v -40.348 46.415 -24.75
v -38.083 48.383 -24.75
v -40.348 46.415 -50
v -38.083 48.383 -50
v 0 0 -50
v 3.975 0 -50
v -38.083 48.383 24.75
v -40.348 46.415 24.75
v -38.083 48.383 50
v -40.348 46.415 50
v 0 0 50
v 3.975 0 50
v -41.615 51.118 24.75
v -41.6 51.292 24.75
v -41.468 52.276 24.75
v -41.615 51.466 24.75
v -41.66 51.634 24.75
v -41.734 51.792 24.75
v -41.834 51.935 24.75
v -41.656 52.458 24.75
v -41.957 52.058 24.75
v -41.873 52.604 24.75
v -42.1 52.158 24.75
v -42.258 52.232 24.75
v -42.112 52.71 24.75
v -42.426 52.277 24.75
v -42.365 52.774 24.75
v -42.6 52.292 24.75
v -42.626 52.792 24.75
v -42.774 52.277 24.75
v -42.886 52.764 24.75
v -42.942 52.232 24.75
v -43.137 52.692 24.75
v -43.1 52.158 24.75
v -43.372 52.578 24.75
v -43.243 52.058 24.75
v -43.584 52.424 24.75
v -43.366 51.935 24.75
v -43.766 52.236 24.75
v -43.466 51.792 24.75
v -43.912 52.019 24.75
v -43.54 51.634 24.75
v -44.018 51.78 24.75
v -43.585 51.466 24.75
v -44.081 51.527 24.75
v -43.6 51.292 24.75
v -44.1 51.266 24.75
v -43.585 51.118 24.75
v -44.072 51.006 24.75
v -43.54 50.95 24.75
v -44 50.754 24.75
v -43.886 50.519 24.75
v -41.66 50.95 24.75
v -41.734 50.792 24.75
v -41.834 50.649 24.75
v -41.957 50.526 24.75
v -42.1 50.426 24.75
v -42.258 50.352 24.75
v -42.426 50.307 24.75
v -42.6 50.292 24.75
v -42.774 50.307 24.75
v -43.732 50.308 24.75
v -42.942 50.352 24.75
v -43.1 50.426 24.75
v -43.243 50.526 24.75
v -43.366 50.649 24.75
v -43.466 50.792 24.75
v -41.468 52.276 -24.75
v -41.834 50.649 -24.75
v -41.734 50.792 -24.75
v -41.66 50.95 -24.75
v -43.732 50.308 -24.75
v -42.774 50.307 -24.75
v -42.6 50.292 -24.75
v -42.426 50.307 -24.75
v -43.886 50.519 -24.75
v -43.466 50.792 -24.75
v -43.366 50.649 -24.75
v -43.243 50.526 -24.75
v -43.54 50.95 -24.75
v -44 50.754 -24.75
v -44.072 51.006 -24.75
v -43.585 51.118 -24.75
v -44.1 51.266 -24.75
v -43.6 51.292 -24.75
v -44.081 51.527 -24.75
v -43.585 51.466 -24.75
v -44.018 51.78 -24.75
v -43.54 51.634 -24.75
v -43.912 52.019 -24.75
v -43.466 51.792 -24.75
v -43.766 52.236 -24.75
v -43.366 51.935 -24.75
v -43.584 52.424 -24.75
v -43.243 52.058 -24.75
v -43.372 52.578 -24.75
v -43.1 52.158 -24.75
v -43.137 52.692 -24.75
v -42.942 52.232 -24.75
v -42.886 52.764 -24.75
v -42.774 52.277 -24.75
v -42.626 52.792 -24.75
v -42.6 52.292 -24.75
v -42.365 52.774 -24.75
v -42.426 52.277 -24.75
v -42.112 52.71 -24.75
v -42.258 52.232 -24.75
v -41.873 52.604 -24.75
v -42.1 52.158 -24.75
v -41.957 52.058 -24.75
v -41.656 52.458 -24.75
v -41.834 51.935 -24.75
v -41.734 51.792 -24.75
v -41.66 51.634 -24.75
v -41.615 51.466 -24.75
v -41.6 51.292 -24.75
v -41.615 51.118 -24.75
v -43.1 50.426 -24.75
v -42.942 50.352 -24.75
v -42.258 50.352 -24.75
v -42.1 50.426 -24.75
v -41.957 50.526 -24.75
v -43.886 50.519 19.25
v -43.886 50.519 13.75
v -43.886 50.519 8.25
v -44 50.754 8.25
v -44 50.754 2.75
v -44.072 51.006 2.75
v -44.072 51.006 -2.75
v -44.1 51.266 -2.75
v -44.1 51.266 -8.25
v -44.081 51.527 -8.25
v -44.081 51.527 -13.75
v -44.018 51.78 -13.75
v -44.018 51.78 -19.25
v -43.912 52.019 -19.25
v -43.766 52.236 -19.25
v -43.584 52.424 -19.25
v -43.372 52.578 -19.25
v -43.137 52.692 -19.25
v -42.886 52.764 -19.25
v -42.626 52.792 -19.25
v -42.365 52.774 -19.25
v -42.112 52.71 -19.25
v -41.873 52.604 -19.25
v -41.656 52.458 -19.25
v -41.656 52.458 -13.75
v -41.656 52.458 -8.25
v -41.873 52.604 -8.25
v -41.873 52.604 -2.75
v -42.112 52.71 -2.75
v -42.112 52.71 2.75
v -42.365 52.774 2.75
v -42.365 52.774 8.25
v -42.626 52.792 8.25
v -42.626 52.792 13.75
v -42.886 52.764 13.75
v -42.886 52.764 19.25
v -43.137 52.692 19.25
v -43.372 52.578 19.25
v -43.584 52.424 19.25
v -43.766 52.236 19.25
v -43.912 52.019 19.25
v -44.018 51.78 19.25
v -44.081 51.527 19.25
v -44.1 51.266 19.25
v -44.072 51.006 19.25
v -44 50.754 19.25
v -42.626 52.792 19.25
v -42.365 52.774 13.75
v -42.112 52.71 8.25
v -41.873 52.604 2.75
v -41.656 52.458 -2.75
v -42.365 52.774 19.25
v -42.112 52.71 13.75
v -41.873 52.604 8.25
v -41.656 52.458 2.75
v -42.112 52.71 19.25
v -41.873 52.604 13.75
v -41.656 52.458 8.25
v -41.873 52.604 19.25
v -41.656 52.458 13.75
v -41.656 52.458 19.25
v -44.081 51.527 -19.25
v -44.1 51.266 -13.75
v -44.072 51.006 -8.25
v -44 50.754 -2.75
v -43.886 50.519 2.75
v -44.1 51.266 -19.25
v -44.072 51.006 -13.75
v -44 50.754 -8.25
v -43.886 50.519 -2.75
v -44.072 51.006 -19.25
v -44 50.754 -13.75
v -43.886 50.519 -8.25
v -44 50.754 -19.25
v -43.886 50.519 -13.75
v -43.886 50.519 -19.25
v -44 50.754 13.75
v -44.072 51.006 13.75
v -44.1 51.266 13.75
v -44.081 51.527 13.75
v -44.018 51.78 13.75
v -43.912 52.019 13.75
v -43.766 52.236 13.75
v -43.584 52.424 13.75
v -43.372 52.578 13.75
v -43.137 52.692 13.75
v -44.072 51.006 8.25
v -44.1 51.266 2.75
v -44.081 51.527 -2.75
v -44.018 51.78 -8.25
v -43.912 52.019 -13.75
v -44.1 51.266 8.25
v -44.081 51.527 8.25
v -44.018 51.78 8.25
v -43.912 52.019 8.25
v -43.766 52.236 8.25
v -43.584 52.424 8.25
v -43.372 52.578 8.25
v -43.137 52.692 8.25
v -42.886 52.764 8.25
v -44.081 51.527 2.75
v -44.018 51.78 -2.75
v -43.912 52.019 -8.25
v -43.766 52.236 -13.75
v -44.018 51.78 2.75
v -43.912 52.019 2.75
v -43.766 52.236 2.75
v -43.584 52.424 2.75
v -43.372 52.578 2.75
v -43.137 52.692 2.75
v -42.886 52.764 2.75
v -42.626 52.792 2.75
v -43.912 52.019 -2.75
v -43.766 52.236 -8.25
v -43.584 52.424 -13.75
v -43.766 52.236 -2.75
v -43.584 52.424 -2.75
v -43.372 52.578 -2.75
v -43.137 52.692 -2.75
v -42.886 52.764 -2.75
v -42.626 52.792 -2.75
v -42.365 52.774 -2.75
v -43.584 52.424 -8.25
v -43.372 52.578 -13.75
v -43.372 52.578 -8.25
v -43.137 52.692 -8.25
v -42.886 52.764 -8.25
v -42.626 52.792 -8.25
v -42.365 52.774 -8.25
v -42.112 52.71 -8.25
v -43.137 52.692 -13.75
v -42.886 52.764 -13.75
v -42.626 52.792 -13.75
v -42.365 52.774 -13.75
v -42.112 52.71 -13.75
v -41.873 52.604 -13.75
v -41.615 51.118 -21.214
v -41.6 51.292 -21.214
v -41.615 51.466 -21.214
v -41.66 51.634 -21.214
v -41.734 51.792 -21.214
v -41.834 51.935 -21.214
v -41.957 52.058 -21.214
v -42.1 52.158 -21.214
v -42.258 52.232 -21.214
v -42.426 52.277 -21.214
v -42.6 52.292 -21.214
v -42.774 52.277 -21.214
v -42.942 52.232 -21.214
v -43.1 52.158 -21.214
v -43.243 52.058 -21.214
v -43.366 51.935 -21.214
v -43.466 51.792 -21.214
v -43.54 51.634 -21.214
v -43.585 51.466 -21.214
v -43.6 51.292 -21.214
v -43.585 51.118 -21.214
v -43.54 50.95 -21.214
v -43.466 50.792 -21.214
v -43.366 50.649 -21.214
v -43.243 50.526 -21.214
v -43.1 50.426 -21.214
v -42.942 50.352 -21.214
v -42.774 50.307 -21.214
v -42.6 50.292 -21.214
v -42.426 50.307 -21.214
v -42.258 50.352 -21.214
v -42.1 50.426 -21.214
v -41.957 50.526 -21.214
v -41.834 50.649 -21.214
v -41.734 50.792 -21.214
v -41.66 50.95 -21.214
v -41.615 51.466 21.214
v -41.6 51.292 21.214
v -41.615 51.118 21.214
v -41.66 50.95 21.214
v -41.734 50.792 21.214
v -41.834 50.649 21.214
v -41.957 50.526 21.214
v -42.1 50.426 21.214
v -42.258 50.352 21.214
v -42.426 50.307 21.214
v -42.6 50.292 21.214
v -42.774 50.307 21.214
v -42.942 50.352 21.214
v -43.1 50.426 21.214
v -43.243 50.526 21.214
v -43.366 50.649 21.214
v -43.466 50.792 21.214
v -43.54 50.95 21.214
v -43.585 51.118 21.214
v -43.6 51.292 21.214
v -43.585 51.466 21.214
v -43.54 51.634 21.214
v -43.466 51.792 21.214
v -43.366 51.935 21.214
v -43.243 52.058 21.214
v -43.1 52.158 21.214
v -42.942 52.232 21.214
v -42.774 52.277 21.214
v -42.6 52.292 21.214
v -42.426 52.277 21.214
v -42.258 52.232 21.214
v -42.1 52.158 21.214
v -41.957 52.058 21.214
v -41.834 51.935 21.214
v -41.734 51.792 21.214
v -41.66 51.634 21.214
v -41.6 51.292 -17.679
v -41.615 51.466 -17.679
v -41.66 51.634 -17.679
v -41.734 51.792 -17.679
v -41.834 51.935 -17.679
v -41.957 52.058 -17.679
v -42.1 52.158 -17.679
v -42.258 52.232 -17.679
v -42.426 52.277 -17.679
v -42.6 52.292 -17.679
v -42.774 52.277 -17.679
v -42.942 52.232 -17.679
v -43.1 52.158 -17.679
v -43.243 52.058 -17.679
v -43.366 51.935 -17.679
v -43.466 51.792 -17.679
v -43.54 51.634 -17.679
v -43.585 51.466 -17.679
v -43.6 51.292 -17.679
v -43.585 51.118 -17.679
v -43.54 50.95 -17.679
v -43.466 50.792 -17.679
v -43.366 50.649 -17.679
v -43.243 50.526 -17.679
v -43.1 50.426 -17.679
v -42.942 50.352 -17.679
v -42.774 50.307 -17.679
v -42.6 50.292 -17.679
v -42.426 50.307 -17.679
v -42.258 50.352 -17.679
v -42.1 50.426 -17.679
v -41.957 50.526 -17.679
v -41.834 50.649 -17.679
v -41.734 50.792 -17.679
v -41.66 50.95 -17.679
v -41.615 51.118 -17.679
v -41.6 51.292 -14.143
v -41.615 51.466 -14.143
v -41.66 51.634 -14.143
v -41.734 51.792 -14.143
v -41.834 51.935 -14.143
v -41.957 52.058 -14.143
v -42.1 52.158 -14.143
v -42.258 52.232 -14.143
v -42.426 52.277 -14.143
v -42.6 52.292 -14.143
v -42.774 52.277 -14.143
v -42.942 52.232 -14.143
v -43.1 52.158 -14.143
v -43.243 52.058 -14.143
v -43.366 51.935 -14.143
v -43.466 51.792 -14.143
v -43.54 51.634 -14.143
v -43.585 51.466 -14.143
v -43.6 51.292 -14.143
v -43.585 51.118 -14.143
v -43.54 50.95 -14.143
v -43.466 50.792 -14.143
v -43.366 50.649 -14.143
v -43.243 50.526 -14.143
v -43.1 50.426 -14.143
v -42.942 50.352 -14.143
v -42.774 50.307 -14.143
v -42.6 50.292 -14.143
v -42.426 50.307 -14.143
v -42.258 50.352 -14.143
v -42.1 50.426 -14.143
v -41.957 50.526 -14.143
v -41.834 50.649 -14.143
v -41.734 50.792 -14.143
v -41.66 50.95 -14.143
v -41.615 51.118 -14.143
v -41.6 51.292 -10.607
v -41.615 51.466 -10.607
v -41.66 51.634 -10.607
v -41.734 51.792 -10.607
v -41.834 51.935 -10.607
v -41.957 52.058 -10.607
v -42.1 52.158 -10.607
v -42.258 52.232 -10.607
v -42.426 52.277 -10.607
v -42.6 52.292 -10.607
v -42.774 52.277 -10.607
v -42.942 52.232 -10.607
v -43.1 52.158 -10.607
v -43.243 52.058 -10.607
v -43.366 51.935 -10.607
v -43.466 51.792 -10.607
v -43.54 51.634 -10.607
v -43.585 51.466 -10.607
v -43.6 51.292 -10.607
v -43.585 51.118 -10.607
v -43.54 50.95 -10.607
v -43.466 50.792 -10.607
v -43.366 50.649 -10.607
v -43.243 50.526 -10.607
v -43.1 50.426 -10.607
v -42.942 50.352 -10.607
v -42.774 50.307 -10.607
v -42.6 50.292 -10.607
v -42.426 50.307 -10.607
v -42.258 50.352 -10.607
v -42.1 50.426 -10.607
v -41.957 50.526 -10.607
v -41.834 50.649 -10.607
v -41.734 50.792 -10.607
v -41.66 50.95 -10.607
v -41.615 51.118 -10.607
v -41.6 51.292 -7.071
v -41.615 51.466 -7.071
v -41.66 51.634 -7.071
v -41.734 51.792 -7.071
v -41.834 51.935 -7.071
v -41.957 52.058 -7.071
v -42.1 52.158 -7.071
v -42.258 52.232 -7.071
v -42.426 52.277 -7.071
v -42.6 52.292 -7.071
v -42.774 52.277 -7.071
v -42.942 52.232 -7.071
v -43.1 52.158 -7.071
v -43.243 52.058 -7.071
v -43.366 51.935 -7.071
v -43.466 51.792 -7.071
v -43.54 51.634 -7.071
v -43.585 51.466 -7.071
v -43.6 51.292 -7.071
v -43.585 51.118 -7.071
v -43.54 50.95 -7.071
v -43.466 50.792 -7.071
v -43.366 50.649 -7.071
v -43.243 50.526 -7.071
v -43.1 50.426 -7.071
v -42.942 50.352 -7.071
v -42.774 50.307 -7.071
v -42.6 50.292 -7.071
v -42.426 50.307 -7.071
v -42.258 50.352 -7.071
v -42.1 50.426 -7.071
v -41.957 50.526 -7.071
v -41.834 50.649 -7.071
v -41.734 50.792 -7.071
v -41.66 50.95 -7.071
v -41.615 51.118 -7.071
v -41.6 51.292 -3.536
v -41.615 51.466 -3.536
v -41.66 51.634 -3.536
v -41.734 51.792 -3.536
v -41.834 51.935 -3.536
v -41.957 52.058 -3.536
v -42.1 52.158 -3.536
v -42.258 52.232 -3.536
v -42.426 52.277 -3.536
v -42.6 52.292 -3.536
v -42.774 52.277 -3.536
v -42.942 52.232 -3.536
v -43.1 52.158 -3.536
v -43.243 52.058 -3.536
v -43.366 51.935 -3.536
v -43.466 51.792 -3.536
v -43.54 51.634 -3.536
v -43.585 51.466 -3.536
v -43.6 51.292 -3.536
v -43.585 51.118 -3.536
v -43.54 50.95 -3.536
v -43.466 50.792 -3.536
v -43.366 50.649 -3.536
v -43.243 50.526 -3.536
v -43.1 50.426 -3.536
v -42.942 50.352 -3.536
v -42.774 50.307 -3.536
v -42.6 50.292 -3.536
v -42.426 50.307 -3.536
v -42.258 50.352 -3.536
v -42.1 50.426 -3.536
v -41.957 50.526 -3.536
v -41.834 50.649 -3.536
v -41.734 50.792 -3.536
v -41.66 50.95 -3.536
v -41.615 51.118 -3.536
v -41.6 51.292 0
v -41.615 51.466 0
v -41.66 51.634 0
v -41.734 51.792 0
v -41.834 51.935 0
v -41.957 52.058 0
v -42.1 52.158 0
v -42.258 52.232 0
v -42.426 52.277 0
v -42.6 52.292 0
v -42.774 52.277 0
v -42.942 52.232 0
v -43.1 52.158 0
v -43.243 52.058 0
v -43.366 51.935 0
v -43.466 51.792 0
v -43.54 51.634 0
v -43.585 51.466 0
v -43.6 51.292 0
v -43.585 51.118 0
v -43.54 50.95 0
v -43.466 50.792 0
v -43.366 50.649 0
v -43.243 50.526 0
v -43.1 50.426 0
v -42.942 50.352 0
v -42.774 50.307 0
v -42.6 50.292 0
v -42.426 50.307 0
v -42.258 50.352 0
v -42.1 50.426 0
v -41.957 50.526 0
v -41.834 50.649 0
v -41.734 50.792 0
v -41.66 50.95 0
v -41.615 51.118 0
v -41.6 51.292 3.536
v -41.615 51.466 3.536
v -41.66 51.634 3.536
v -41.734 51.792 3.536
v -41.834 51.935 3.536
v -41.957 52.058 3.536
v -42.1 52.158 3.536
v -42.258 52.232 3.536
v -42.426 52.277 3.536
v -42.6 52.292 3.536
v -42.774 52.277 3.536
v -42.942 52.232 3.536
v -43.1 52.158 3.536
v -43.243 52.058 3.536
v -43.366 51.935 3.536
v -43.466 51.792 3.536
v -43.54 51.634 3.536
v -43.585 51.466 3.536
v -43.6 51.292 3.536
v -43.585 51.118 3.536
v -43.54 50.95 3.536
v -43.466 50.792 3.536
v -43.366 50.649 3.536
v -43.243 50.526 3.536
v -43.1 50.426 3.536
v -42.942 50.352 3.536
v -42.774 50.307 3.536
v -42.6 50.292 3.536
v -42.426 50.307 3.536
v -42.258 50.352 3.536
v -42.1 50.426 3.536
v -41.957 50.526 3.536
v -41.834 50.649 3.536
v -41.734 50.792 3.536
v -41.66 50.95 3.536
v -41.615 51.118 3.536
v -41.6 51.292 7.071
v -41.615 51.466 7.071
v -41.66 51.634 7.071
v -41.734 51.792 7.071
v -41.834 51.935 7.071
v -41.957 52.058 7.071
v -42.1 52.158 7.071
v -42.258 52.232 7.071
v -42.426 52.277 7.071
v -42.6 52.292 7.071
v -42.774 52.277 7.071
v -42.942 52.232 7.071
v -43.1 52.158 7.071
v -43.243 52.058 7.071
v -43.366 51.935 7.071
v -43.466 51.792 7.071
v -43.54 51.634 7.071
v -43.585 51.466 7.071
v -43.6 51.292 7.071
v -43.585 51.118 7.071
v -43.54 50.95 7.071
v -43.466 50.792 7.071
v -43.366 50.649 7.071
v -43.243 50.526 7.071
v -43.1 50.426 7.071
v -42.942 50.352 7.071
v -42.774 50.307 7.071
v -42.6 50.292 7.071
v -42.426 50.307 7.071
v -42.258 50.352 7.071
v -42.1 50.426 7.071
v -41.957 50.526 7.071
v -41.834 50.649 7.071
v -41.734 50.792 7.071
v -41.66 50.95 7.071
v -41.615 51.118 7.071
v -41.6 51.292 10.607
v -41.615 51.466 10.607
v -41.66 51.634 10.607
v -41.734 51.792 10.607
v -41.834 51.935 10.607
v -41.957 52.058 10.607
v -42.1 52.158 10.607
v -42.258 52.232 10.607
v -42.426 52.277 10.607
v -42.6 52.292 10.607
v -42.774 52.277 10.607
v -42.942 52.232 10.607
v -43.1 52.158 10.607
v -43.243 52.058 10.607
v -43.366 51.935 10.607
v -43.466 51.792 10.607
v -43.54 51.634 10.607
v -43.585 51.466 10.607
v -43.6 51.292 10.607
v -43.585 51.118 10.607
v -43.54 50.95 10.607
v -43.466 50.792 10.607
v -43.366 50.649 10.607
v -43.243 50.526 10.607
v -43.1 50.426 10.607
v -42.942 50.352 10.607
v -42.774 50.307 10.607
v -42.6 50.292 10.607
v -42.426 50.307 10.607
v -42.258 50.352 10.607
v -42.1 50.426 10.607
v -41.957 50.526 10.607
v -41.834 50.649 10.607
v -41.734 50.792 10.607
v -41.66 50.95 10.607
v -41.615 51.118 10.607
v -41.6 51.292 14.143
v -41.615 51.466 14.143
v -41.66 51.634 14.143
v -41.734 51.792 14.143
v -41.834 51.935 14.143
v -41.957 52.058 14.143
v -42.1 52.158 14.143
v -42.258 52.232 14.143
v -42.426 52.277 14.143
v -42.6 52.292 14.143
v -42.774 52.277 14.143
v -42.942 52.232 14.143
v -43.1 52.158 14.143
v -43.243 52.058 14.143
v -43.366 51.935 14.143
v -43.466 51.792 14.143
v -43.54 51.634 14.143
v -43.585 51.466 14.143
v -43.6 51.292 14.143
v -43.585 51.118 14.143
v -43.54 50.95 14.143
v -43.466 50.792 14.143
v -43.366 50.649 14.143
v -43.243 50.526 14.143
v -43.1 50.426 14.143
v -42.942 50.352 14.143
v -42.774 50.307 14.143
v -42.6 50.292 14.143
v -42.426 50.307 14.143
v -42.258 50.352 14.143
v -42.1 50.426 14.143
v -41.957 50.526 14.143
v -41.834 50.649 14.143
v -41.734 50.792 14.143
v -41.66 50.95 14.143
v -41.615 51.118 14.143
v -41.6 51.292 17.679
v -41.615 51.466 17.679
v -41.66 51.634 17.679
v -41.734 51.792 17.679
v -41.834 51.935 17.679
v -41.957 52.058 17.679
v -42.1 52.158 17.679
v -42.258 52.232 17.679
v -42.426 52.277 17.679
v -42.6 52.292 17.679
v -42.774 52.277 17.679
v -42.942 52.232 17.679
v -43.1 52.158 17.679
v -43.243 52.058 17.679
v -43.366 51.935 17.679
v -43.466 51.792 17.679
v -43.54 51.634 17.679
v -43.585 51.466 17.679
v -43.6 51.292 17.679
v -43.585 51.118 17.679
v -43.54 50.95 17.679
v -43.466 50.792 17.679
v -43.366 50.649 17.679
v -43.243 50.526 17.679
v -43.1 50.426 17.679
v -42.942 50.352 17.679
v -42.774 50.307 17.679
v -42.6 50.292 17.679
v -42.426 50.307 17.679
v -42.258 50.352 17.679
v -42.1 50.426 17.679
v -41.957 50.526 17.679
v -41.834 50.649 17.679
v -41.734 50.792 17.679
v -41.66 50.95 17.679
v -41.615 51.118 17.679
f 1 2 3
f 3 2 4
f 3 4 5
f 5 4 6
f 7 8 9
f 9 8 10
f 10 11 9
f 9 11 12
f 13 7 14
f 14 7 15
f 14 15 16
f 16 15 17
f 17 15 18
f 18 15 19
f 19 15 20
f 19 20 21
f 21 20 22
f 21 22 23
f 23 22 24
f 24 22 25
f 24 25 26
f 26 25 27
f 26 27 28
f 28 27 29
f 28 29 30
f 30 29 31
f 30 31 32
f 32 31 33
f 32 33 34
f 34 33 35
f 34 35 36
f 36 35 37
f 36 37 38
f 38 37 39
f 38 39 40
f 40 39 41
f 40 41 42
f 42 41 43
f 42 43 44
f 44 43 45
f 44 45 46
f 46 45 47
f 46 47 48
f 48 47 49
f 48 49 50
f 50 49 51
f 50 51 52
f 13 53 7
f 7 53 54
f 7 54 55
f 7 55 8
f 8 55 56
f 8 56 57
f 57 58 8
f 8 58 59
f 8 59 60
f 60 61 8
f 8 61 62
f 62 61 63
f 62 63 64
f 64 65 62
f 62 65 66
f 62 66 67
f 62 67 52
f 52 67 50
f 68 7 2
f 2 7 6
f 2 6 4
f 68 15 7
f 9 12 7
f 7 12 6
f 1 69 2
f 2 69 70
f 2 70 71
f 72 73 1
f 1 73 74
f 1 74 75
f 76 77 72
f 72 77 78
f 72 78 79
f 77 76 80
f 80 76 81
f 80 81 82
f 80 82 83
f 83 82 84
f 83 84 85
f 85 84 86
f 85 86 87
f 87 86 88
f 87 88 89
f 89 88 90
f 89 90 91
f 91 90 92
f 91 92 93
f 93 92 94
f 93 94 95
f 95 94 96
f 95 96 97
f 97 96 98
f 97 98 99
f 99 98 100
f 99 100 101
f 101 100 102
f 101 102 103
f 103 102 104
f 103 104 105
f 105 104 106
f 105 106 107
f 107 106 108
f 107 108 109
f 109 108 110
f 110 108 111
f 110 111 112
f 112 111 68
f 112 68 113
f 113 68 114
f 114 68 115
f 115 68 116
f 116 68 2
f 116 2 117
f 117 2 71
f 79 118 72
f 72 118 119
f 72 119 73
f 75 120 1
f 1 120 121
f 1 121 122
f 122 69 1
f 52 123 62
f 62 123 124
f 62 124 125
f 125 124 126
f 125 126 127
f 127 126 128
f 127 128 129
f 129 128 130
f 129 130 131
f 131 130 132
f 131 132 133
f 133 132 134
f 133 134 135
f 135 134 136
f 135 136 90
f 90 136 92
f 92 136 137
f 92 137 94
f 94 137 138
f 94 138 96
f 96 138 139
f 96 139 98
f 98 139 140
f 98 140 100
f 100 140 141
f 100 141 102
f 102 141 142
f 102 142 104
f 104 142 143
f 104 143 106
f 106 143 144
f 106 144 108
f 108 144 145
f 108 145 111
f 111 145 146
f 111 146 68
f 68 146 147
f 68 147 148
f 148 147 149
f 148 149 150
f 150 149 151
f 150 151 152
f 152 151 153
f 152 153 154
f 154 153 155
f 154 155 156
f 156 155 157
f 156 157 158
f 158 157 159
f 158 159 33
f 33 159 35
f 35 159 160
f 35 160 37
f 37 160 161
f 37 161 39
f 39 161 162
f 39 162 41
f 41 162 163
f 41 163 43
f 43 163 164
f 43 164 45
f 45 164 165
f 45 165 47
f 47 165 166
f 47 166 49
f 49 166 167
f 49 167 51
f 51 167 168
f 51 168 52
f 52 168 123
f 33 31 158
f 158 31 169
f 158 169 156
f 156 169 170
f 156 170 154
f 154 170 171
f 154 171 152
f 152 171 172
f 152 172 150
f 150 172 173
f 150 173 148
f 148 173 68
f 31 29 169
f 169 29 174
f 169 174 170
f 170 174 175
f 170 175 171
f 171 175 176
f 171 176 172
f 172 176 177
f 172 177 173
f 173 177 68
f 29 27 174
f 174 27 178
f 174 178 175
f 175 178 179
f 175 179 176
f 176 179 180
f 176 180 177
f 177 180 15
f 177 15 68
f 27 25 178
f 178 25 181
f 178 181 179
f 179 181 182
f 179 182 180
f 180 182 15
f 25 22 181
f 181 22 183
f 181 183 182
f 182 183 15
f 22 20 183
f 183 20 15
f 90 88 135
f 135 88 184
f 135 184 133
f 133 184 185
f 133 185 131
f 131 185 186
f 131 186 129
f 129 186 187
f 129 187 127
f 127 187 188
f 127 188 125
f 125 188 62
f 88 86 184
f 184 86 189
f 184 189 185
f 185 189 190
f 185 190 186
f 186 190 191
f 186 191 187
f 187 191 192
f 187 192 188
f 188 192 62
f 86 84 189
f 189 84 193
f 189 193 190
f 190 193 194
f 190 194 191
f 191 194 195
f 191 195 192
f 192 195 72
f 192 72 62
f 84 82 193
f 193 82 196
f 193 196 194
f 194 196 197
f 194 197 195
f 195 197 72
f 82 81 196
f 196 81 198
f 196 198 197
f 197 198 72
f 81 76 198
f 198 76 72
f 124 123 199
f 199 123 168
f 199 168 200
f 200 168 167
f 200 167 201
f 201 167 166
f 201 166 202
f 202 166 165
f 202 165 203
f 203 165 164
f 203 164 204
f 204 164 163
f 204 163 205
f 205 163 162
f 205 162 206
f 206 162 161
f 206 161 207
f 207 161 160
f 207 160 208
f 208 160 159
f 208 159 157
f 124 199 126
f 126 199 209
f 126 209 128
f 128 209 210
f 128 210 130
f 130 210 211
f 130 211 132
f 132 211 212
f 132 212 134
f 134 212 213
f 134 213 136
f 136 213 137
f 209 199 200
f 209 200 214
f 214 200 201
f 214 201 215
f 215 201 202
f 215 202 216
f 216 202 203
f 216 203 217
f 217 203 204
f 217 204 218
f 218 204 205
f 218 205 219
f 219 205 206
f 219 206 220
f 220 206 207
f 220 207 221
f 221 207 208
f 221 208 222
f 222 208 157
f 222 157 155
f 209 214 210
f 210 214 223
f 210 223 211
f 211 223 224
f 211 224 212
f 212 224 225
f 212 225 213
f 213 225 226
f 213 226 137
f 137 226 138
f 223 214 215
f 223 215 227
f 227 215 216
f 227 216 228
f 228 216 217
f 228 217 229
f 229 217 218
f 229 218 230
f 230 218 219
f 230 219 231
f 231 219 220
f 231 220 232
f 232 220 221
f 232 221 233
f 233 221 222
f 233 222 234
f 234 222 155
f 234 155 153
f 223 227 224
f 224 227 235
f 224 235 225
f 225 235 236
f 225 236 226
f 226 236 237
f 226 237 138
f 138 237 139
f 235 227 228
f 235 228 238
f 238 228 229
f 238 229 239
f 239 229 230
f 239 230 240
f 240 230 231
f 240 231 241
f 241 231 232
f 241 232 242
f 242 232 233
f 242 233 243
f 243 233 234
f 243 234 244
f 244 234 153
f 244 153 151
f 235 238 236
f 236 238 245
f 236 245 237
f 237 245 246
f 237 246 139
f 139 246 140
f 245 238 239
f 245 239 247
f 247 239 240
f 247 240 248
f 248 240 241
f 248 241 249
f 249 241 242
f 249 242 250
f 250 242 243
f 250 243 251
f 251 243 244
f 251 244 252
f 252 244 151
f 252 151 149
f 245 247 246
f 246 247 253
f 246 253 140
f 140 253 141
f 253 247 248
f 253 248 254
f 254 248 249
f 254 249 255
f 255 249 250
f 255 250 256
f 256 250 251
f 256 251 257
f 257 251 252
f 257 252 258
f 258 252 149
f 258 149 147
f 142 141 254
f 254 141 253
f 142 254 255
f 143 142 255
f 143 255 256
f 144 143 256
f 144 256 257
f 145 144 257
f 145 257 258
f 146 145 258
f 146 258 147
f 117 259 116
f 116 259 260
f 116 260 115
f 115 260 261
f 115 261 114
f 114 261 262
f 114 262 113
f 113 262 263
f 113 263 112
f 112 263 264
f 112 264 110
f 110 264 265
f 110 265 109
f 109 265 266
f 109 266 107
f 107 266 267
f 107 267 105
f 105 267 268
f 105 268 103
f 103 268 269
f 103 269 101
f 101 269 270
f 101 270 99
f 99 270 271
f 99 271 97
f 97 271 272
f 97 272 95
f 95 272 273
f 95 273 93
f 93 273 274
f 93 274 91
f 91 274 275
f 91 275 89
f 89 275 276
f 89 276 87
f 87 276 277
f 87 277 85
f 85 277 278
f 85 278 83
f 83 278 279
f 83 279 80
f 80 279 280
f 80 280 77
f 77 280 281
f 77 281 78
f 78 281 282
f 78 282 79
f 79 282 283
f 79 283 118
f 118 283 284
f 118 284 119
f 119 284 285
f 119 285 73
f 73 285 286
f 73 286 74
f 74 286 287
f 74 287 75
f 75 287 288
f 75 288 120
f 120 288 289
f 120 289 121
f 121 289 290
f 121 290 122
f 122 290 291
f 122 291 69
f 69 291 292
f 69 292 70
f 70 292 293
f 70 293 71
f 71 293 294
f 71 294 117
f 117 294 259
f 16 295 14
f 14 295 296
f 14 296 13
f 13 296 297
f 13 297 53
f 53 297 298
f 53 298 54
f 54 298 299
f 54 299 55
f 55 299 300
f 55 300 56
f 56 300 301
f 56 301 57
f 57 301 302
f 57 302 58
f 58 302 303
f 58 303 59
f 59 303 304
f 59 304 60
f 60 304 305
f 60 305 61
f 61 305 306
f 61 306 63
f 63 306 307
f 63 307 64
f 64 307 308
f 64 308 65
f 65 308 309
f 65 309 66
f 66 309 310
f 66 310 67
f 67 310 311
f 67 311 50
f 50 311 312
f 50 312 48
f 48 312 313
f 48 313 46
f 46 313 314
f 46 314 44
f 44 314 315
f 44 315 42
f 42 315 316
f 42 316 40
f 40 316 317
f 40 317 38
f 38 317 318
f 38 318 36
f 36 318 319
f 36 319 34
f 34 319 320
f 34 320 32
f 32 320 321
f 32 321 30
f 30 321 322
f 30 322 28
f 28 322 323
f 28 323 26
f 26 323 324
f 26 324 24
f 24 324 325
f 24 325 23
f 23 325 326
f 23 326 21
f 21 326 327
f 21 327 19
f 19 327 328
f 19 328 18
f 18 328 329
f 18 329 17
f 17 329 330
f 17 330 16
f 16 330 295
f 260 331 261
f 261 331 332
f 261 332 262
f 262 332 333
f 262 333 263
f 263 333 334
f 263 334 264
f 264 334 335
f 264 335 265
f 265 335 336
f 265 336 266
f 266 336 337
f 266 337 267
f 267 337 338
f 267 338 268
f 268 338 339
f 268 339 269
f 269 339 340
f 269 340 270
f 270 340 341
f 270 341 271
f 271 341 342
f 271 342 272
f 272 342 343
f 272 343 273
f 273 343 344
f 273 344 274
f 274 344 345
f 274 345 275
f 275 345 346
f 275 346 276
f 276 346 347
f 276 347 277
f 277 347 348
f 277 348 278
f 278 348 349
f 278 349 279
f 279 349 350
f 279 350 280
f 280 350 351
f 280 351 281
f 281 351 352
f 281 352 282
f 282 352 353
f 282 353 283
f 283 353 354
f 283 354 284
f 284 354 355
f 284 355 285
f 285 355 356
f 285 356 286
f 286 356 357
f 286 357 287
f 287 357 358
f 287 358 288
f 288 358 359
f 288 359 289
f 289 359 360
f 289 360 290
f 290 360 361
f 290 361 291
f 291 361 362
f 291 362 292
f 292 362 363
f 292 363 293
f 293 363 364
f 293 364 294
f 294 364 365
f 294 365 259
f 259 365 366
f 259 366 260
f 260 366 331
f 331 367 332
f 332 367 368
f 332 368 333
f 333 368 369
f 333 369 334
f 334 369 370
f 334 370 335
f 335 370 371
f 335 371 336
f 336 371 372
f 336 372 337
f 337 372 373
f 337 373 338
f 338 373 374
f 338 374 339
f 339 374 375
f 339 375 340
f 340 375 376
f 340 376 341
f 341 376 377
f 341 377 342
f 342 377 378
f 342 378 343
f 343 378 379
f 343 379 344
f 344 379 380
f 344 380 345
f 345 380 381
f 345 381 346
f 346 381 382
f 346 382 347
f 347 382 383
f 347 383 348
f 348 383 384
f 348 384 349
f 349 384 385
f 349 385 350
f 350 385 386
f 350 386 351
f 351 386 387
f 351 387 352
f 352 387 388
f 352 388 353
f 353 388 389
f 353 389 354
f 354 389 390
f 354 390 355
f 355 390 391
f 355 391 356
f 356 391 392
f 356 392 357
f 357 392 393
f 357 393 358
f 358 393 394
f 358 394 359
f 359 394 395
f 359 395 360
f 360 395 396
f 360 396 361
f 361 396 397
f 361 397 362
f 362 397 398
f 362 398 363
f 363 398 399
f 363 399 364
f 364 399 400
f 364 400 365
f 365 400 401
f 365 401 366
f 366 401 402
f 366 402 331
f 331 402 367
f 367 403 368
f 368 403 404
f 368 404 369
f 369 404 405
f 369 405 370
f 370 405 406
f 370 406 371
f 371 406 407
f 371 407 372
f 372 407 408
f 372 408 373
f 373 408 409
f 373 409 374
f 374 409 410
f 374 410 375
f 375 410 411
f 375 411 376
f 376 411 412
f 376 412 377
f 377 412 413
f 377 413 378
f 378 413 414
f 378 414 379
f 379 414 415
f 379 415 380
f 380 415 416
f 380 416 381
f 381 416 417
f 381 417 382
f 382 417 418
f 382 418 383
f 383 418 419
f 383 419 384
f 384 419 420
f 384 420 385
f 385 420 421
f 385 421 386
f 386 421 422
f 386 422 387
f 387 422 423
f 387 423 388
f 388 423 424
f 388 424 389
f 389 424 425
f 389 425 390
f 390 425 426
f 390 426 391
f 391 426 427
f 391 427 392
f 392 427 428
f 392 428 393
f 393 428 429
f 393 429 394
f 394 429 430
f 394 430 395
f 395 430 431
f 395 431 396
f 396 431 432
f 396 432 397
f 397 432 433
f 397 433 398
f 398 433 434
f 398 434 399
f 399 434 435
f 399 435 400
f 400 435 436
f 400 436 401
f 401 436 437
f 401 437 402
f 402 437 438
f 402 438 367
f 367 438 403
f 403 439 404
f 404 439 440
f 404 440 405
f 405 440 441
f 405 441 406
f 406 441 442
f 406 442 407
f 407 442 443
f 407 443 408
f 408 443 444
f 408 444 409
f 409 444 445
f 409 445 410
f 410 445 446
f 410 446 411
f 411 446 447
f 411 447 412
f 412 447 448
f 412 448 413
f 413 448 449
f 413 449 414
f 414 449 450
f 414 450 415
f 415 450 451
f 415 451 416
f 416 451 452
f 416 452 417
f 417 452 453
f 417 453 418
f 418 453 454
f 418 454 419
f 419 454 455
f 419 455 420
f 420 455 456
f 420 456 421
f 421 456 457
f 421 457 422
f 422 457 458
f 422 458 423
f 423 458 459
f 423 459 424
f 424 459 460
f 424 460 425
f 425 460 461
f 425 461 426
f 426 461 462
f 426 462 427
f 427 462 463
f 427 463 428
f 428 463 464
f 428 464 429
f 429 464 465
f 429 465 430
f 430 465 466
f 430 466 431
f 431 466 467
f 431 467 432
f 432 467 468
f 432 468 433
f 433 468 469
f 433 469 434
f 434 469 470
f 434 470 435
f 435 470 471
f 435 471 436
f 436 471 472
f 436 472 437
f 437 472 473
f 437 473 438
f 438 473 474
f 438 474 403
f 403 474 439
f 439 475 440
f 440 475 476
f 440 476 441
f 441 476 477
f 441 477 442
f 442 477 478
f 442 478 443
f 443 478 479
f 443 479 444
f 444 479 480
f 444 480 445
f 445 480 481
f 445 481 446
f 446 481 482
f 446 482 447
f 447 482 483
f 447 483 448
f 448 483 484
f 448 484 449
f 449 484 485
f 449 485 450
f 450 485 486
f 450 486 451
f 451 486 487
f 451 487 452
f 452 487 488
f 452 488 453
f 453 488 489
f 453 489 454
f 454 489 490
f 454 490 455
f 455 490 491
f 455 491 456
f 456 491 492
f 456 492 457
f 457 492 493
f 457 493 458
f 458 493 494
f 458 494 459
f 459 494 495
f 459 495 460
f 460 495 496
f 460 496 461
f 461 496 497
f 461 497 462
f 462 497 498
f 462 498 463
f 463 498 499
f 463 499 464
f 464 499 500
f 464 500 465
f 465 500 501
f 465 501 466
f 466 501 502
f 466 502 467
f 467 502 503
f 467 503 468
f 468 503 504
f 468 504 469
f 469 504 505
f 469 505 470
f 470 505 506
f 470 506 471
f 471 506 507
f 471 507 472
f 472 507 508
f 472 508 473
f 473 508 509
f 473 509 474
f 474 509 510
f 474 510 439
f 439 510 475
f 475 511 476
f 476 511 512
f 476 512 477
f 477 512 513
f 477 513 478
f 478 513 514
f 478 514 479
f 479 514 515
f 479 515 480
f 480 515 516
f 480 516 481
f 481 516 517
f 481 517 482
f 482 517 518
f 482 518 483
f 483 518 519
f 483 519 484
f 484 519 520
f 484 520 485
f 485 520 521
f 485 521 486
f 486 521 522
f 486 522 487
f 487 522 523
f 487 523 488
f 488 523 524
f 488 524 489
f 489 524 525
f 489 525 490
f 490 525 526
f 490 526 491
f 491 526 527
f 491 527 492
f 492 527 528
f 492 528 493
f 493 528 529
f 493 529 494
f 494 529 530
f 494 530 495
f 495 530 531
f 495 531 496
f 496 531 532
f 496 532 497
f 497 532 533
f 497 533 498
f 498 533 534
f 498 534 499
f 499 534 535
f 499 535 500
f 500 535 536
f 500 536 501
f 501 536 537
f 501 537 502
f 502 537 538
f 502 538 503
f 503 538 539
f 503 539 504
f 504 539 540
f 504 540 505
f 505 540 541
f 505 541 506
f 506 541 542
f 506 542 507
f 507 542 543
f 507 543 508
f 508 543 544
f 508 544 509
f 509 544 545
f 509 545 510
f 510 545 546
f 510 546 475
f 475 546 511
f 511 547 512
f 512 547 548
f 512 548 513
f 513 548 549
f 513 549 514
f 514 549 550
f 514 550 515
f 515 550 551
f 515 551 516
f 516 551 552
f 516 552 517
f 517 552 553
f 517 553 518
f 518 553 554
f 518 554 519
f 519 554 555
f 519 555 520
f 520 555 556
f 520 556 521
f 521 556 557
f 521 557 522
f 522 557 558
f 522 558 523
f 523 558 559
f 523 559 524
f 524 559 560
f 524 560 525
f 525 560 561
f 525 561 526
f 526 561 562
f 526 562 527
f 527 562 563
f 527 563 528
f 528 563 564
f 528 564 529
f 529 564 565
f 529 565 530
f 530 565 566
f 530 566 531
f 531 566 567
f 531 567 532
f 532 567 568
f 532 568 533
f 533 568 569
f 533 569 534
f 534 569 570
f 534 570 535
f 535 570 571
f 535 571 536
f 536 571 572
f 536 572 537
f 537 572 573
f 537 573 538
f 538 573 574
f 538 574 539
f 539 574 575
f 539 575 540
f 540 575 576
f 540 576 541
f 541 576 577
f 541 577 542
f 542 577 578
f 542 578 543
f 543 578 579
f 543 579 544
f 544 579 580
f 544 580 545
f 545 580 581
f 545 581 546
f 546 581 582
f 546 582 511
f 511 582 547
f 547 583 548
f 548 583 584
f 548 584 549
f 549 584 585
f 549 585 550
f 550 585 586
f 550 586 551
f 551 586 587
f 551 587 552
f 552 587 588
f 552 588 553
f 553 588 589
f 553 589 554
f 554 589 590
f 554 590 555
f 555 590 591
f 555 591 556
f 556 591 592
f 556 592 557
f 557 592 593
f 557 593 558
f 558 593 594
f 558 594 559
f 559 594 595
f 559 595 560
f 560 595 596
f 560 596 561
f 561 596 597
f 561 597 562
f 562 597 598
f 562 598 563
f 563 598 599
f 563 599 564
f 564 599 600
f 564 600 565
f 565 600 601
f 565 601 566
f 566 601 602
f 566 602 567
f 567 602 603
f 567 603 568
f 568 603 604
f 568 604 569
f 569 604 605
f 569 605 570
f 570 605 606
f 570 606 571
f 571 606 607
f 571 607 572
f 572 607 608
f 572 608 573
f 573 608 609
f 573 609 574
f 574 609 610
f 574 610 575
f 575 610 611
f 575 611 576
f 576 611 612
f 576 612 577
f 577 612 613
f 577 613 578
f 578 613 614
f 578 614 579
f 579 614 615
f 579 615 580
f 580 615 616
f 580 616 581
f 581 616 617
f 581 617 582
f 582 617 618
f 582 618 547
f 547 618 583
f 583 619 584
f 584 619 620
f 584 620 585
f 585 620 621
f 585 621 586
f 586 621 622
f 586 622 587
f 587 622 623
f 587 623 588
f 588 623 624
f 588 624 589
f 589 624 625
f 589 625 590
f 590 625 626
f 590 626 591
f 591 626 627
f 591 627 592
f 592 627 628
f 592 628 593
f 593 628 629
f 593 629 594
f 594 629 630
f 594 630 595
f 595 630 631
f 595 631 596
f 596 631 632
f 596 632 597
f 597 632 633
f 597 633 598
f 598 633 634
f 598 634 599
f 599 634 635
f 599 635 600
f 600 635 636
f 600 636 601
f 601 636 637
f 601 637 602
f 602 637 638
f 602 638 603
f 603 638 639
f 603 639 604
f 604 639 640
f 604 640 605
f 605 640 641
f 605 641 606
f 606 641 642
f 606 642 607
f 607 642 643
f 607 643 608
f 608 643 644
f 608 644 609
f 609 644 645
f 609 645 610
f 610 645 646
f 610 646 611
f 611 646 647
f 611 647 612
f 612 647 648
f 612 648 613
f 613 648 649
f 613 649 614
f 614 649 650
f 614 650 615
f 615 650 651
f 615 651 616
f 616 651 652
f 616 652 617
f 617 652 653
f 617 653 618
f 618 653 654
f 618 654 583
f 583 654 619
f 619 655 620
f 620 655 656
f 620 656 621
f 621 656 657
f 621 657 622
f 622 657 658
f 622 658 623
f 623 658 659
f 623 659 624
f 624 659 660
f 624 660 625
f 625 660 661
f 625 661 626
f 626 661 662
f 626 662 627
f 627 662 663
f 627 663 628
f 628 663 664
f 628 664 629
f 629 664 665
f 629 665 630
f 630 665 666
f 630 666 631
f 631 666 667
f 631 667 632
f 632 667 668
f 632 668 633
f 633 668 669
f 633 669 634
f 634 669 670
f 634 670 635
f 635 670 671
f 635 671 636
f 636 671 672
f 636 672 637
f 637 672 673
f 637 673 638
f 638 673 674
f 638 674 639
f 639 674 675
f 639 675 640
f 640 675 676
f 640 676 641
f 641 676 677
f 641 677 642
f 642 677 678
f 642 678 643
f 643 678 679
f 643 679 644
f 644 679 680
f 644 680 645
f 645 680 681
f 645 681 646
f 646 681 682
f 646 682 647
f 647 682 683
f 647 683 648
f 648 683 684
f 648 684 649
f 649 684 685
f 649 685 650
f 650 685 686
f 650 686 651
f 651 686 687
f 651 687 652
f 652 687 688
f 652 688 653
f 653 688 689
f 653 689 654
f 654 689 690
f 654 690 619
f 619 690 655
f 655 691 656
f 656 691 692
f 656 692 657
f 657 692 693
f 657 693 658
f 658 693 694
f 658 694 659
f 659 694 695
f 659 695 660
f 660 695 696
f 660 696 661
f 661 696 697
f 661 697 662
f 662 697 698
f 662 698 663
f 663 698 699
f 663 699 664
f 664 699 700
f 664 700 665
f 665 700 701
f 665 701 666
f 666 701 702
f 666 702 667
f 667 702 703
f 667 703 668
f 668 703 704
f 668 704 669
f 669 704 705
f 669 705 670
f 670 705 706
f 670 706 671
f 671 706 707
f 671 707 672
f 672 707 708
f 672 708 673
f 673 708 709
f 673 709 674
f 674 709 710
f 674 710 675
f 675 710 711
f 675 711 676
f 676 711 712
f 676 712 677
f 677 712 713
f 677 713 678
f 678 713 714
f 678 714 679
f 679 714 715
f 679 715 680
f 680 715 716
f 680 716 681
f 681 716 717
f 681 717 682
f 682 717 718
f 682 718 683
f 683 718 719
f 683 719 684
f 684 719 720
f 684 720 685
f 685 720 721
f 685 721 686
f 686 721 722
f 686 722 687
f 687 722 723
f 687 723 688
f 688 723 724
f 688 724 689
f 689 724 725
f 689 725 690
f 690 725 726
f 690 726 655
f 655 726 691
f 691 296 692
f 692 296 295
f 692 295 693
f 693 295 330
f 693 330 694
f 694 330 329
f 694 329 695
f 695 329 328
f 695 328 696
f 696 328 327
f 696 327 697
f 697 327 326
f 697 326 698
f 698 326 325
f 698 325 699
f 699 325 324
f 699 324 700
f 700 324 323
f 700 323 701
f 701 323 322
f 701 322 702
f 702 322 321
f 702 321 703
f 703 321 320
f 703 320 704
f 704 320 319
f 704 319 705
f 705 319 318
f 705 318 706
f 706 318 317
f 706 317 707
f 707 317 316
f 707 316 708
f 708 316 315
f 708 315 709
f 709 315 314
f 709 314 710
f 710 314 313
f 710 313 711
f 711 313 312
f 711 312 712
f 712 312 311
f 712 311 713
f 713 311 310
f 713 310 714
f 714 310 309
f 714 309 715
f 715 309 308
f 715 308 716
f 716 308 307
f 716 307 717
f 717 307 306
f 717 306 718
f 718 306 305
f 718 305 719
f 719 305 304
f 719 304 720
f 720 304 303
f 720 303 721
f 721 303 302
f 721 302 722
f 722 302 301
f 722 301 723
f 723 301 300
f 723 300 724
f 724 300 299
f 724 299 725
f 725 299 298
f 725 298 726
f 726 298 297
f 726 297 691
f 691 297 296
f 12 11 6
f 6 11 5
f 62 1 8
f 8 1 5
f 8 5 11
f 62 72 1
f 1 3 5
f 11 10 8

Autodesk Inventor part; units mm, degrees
ref_plane "YZ Plane" through (0, 0, 0) normal (1, 0, 0) x (0, 1, 0)
ref_plane "XZ Plane" through (0, 0, 0) normal (0, 1, 0) x (-1, 0, 0)
ref_plane "XY Plane" through (0, 0, 0) normal (0, 0, 1) x (1, 0, 0)
sketch "Эскиз1" plane through (0, 0, 0) normal (0, 0, 1) x (1, 0, 0)
  line L0 (0, 0) -> (-40.6757, 46.792)
  line L1 (-40.6757, 46.792) -> (-85.6757, 46.792)
  line L2 (-85.6757, 49.792) -> (-39.3085, 49.792)
  line L3 (-39.3085, 49.792) -> (3.975, 0)
  line L4 (-40.6757, 46.792) -> (-55.8266, 64.2212)
  line L5 (0, 0) -> (15.6604, 0)
  line L6 (-15.0802, 19.6341) -> (-42.5999, 51.292)
  line L7 (-85.6757, 51.292) -> (-42.5999, 51.292)
  circle A0 centre (-42.5999, 51.292) radius 1
  line L8 (-39.3085, 49.792) -> (-42.452, 53.4081)
  line L9 (-42.452, 53.4081) -> (-44.7161, 51.44)
  line L10 (-40.6757, 46.792) -> (-40.6757, 52.792)
  line L11 (-40.6757, 52.792) -> (-44.0999, 52.792)
  line L12 (-44.0999, 52.792) -> (-44.0999, 46.792)
  line L13 (-40.6757, 46.792) -> (-38.4115, 48.7602)
  line L14 (-40.3476, 46.4146) -> (-38.0835, 48.3828)
  point P0 (-59.7086, 51.292)
  dimension "d0" = 131
  dimension "d1" = 45
  dimension "d2" = 62
  dimension "d3" = 3
  dimension "d4" = 3
  dimension "d5" = 3
  dimension "d6" = 3
  dimension "d7" = 2
  dimension "d8" = 1.5
  dimension "d9" = 1.5
  dimension "d10" = 1.5
  dimension "d17" = 0.5
extrude "Выдавливание1" add sketch "Эскиз1" along normal mid plane 49.5 contours L0 L14 L3 L5 | L0 L13 L6 L14 | L4 L2 L6 L10 | L10 L6 L13 | L6 L13 L3 L14 | L4 L12 L7 A0 L6 L2 | L10 L2 L3 L13 L6 | L6 L2 L10 | L6 A0 L7 L12 L9 L11 L8 L10 L2 | L4 L7 L12 | L10 L8 L2 | L4 L9 L12 L7 | L11 L9 L8
fillet "Сопряжение1" radius 1.5 2 edges at (-42.452, 53.4081, 0) (-44.7161, 51.44, 0)
extrude "Выдавливание2" add sketch "Эскиз1" along normal mid plane 100 contours L0 L14 L3 L5
properties part number "Cover2"
